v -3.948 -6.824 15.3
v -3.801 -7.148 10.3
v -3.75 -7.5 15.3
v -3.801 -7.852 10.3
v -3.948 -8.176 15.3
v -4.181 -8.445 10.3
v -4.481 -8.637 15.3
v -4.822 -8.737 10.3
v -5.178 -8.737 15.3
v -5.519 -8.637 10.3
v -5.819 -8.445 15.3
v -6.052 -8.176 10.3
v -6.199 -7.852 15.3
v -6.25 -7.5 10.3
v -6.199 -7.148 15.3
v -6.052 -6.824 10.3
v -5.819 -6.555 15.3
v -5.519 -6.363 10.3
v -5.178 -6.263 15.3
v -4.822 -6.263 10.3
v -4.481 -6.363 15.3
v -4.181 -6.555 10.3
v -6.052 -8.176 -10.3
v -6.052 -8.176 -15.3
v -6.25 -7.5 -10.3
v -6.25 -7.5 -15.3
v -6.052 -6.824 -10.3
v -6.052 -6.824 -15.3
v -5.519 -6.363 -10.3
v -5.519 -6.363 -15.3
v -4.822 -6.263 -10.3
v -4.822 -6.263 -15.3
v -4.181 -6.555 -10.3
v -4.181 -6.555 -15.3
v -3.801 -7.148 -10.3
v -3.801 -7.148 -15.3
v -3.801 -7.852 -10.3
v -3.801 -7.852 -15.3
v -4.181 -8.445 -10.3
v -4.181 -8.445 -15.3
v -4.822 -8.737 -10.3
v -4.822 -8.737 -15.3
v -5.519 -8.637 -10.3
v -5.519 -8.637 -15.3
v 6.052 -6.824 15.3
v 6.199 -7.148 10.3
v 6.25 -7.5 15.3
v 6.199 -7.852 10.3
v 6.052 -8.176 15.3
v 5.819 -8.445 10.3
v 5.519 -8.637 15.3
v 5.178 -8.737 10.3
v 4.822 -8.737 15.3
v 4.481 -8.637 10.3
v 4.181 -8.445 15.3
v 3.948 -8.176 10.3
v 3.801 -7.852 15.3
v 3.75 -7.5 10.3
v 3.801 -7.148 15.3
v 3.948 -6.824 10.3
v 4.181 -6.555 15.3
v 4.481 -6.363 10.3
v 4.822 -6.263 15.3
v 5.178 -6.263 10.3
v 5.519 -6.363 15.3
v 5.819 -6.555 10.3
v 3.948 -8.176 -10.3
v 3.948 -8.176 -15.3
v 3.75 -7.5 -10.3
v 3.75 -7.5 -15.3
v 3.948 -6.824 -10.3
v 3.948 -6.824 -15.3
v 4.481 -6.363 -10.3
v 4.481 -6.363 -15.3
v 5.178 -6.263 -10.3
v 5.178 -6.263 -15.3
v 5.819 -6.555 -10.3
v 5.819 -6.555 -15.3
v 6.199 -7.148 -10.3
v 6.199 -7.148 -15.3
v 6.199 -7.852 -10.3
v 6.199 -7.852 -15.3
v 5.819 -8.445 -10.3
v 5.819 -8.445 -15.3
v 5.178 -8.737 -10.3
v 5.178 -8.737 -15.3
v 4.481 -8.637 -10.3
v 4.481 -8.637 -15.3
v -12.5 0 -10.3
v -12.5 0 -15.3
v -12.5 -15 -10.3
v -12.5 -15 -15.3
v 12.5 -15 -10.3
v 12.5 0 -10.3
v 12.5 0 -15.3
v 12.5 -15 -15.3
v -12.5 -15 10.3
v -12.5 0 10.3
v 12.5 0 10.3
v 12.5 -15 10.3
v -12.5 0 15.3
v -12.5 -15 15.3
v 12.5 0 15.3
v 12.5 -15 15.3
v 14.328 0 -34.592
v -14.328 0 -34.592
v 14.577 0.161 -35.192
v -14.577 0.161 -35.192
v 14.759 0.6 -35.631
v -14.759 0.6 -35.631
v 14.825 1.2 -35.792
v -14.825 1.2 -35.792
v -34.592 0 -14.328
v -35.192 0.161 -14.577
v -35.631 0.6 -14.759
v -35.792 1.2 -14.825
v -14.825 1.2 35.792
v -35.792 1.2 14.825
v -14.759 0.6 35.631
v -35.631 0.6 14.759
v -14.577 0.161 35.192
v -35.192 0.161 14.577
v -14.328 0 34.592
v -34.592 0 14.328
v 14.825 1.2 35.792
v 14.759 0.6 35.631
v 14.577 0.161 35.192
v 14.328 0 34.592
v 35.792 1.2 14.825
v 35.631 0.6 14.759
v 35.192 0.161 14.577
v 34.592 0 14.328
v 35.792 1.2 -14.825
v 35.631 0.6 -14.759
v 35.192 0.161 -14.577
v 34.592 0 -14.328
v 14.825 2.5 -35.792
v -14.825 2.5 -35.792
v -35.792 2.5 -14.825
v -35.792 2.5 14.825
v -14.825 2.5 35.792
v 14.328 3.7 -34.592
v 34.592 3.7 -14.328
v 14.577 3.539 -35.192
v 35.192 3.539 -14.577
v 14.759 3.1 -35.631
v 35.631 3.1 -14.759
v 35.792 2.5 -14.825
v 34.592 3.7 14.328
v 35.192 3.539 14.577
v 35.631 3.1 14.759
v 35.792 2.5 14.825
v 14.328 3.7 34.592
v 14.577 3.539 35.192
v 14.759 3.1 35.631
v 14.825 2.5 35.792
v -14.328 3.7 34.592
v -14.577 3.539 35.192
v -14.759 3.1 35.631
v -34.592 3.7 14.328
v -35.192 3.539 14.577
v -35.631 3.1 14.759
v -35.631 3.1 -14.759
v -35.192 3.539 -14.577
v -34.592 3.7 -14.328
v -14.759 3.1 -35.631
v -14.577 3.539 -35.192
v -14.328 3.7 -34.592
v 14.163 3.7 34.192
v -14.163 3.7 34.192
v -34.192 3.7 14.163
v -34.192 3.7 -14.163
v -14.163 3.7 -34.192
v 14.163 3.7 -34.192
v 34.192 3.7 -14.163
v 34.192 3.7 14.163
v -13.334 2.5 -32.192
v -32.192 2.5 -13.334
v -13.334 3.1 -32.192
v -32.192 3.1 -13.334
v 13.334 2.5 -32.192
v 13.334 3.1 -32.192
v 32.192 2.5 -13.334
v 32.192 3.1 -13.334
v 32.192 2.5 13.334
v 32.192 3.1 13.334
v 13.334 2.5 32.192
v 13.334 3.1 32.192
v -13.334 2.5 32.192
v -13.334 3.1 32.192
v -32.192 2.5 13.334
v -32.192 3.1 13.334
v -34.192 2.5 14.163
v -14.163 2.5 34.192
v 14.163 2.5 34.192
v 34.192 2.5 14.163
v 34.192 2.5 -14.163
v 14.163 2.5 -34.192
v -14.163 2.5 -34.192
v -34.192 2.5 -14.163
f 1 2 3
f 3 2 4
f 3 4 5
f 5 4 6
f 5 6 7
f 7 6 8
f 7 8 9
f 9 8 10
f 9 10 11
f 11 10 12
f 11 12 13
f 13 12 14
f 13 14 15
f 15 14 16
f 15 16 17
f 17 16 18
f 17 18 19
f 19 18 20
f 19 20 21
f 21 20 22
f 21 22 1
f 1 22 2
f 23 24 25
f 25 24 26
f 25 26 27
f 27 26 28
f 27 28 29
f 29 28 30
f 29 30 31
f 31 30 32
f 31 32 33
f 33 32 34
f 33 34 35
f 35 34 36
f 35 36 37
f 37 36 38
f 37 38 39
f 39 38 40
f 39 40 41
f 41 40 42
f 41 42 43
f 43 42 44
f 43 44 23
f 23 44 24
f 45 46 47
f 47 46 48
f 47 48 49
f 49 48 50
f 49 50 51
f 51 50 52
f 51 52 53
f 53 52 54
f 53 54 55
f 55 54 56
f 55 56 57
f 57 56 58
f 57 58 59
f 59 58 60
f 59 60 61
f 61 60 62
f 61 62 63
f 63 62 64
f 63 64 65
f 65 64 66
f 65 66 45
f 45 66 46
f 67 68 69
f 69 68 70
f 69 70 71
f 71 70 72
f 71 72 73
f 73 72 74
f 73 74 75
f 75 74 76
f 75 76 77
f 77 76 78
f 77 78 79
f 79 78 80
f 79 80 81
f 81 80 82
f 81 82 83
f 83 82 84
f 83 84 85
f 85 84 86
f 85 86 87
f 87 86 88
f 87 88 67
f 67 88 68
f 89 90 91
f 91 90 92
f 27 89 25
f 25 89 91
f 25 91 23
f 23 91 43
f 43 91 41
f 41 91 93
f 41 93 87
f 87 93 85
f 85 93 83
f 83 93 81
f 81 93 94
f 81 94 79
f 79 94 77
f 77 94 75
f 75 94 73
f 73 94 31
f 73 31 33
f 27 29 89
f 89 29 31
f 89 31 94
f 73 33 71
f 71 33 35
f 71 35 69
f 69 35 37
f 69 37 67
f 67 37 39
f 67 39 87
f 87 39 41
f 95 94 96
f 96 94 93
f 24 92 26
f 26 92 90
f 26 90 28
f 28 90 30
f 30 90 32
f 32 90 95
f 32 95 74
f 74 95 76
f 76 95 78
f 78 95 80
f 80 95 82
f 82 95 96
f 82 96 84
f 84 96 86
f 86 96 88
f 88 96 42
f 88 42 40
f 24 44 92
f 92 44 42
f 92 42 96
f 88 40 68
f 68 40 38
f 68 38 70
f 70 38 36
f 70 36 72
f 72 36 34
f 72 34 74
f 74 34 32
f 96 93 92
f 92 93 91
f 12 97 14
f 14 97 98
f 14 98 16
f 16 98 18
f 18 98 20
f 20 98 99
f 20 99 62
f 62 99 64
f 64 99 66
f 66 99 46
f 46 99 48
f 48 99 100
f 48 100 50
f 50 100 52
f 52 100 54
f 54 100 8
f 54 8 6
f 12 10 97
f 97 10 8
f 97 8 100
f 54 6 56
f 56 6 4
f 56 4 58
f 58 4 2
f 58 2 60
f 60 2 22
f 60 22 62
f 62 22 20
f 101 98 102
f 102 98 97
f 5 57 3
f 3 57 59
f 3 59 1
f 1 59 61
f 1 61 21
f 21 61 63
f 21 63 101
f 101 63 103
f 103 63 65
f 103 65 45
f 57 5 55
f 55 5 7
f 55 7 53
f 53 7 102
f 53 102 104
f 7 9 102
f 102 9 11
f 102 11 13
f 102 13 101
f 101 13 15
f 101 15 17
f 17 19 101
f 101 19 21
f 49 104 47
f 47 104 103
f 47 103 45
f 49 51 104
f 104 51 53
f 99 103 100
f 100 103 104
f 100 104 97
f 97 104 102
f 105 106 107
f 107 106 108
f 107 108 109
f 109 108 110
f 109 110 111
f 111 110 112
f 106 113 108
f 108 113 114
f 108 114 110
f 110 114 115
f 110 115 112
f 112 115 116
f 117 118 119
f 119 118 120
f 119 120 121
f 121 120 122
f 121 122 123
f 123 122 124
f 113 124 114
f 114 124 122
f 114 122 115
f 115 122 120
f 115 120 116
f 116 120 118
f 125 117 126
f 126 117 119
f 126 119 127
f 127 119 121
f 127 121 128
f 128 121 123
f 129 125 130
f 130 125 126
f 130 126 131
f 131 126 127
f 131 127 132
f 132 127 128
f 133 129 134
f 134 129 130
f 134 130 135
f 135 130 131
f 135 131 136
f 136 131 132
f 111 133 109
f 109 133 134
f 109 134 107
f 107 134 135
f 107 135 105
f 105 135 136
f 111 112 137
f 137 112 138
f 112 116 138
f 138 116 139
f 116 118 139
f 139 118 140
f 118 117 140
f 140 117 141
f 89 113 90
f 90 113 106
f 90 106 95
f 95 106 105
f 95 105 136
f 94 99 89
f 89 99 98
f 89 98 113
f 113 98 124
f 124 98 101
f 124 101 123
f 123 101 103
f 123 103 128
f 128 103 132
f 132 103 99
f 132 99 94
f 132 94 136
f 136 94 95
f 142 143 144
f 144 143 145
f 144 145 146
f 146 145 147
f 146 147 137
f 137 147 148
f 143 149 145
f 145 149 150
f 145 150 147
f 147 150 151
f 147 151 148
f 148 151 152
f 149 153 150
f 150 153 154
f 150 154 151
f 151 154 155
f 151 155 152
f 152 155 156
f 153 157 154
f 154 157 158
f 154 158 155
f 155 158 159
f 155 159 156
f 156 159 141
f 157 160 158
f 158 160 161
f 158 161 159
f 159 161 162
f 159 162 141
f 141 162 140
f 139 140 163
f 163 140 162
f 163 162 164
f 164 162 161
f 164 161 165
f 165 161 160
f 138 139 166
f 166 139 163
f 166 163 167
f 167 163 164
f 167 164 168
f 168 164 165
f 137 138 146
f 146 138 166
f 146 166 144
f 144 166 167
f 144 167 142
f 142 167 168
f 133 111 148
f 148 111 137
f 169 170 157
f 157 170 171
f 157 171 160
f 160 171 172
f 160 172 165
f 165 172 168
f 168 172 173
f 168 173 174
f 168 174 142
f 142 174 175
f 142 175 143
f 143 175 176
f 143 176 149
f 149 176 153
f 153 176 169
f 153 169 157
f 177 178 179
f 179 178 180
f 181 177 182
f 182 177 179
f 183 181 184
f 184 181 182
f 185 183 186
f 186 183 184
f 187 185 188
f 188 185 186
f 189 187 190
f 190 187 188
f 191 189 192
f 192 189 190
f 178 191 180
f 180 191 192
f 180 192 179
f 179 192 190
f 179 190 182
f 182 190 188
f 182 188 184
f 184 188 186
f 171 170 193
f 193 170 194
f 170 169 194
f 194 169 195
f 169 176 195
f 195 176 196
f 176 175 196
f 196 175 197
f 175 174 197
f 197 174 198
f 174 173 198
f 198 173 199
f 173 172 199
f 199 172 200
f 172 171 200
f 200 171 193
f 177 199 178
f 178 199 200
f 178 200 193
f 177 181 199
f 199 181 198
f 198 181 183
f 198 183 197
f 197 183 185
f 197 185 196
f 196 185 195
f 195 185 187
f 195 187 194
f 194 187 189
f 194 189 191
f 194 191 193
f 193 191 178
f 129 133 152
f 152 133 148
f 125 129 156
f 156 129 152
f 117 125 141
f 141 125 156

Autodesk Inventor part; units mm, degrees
ref_plane "YZ Plane" through (0, 0, 0) normal (1, 0, 0) x (0, 1, 0)
ref_plane "XZ Plane" through (0, 0, 0) normal (0, 1, 0) x (-1, 0, 0)
ref_plane "XY Plane" through (0, 0, 0) normal (0, 0, 1) x (1, 0, 0)
sketch "스케치3" plane through (0, 0, 0) normal (0, 1, 0) x (-1, 0, 0)
  line L0 (35.7919, -14.8255) -> (14.8255, -35.7919)
  line L1 (14.8255, -35.7919) -> (-14.8255, -35.7919)
  line L2 (-14.8255, -35.7919) -> (-35.7919, -14.8255)
  line L3 (-35.7919, -14.8255) -> (-35.7919, 14.8255)
  line L4 (-35.7919, 14.8255) -> (-14.8255, 35.7919)
  line L5 (-14.8255, 35.7919) -> (14.8255, 35.7919)
  line L6 (14.8255, 35.7919) -> (35.7919, 14.8255)
  line L7 (35.7919, 14.8255) -> (35.7919, -14.8255)
  line L8 (13.5, -32.5919) -> (-13.5, -32.5919)
  line L9 (-13.5, -32.5919) -> (-32.5919, -13.5)
  line L10 (-32.5919, -13.5) -> (-32.5919, 13.5)
  line L11 (-32.5919, 13.5) -> (-13.5, 32.5919)
  line L12 (-13.5, 32.5919) -> (13.5, 32.5919)
  line L13 (13.5, 32.5919) -> (32.5919, 13.5)
  line L14 (32.5919, 13.5) -> (32.5919, -13.5)
  line L15 (32.5919, -13.5) -> (13.5, -32.5919)
  point P0 (0, 0)
  point P1 (0, 0)
  point P2 (0, 0)
  point P3 (0, 0)
  dimension "d66" = 27
  dimension "d67" = 3.2
extrude "돌출2" add sketch "스케치3" along normal blind 3.7 contours L0 L1 L2 L3 L4 L5 L6 L7 | L8 L9 L10 L11 L12 L13 L14 L15
sketch "스케치4" plane through (0, 3.7, 0) normal (0, 1, 0) x (1, 0, 0)
  line L0 (13.5, -32.5919) -> (-13.5, -32.5919)
  line L1 (-13.5, -32.5919) -> (-32.5919, -13.5)
  line L2 (-32.5919, -13.5) -> (-32.5919, 13.5)
  line L3 (-32.5919, 13.5) -> (-13.5, 32.5919)
  line L4 (-13.5, 32.5919) -> (13.5, 32.5919)
  line L5 (13.5, 32.5919) -> (32.5919, 13.5)
  line L6 (32.5919, 13.5) -> (32.5919, -13.5)
  line L7 (32.5919, -13.5) -> (13.5, -32.5919)
  line L8 (-14.1627, 34.1919) -> (14.1627, 34.1919)
  line L9 (14.1627, 34.1919) -> (34.1919, 14.1627)
  line L10 (34.1919, 14.1627) -> (34.1919, -14.1627)
  line L11 (34.1919, -14.1627) -> (14.1627, -34.1919)
  line L12 (14.1627, -34.1919) -> (-14.1627, -34.1919)
  line L13 (-14.1627, -34.1919) -> (-34.1919, -14.1627)
  line L14 (-34.1919, -14.1627) -> (-34.1919, 14.1627)
  line L15 (-34.1919, 14.1627) -> (-14.1627, 34.1919)
  line L16 (-13.3343, 32.1919) -> (13.3343, 32.1919)
  line L17 (13.3343, 32.1919) -> (32.1919, 13.3343)
  line L18 (32.1919, 13.3343) -> (32.1919, -13.3343)
  line L19 (32.1919, -13.3343) -> (13.3343, -32.1919)
  line L20 (13.3343, -32.1919) -> (-13.3343, -32.1919)
  line L21 (-13.3343, -32.1919) -> (-32.1919, -13.3343)
  line L22 (-32.1919, -13.3343) -> (-32.1919, 13.3343)
  line L23 (-32.1919, 13.3343) -> (-13.3343, 32.1919)
  line L24 (-14.8255, 35.7919) -> (-35.7919, 14.8255) projected
  point P0 (0, 0)
  point P1 (0, 0)
  point P2 (0, 0)
  point P3 (0, 0)
  dimension "d7" = 27
  dimension "d99" = 1.6
  dimension "d100" = 2
extrude "돌출3" cut sketch "스케치4" against normal blind 1.2 contours L0 L1 L2 L3 L4 L5 L6 L7 | L8 L9 L10 L11 L12 L13 L14 L15 | L16 L17 L18 L19 L20 L21 L22 L23
sketch "스케치11" plane through (0, 2.5, 0) normal (0, 1, 0) x (1, 0, 0)
  line L0 (-13.3343, 32.1919) -> (13.3343, 32.1919)
  line L1 (13.3343, 32.1919) -> (32.1919, 13.3343)
  line L2 (32.1919, 13.3343) -> (32.1919, -13.3343)
  line L3 (32.1919, -13.3343) -> (13.3343, -32.1919)
  line L4 (13.3343, -32.1919) -> (-13.3343, -32.1919)
  line L5 (-13.3343, -32.1919) -> (-32.1919, -13.3343)
  line L6 (-32.1919, -13.3343) -> (-32.1919, 13.3343)
  line L7 (-32.1919, 13.3343) -> (-13.3343, 32.1919)
  line L8 (-14.1627, 34.1919) -> (14.1627, 34.1919) projected
  line L9 (-12.0917, 29.1919) -> (12.0917, 29.1919)
  line L10 (12.0917, 29.1919) -> (29.1919, 12.0917)
  line L11 (29.1919, 12.0917) -> (29.1919, -12.0917)
  line L12 (29.1919, -12.0917) -> (12.0917, -29.1919)
  line L13 (12.0917, -29.1919) -> (-12.0917, -29.1919)
  line L14 (-12.0917, -29.1919) -> (-29.1919, -12.0917)
  line L15 (-29.1919, -12.0917) -> (-29.1919, 12.0917)
  line L16 (-29.1919, 12.0917) -> (-12.0917, 29.1919)
  point P0 (0, 0)
  point P1 (0, 0)
  point P2 (0, 0)
  dimension "d70" = 2
  dimension "d71" = 3
extrude "돌출10" add sketch "스케치11" along normal blind 0.6 contours L0 L1 L2 L3 L4 L5 L6 L7 | L9 L10 L11 L12 L13 L14 L15 L16
fillet "모깎기1" radius 1.2 16 edges at (-25.3087, 3.7, 25.3087) (0, 3.7, 35.7919) (25.3087, 3.7, 25.3087) (35.7919, 3.7, 0) (25.3087, 3.7, -25.3087) (0, 3.7, -35.7919) (-25.3087, 3.7, -25.3087) (-35.7919, 3.7, 0) (-25.3087, 0, 25.3087) (0, 0, 35.7919) (25.3087, 0, 25.3087) (35.7919, 0, 0) (25.3087, 0, -25.3087) (0, 0, -35.7919) (-25.3087, 0, -25.3087) (-35.7919, 0, 0)
sketch "스케치16" plane through (0, 0, 0) normal (0, -1, 0) x (1, 0, 0)
  line L0 (-12.5, 10.3) -> (12.5, 10.3)
  line L1 (12.5, 10.3) -> (12.5, 15.3)
  line L2 (12.5, 15.3) -> (-12.5, 15.3)
  line L3 (-12.5, 15.3) -> (-12.5, 10.3)
  line L4 (-12.5, 10.3) -> (12.5, 15.3) construction
  line L5 (12.5, 10.3) -> (-12.5, 15.3) construction
  line L6 (0, 0) -> (12.5, 0)
  line L7 (-12.5, -10.3) -> (12.5, -10.3)
  line L8 (12.5, -10.3) -> (12.5, -15.3)
  line L9 (12.5, -15.3) -> (-12.5, -15.3)
  line L10 (-12.5, -15.3) -> (-12.5, -10.3)
  line L11 (-12.5, -10.3) -> (12.5, -15.3) construction
  line L12 (12.5, -10.3) -> (-12.5, -15.3) construction
  point P0 (0, 12.8)
  point P1 (0, 10.3)
  point P2 (0, -12.8)
  point P3 (0, -10.3)
  dimension "d127" = 5
  dimension "d128" = 25
  dimension "d129" = 10.3
extrude "돌출12" add sketch "스케치16" along normal blind 15
sketch "스케치17" plane through (-12.5, 0, 15.3) normal (0, 0, 1) x (1, 0, 0)
  circle A0 centre (7.5, -7.5) radius 1.25
  line L0 (-1.8284, 0) -> (26.8284, 0) projected
  line L1 (12.5, 0) -> (12.5, -5.2723)
  circle A1 centre (17.5, -7.5) radius 1.25
  point P0 (12.5, 0)
  dimension "d132" = 2.5
  dimension "d136" = 7.5
  dimension "d137" = 5
extrude "돌출13" cut sketch "스케치17" against normal up to surface (30.6 mm away)
equation "\"d115\" = 55deg"
properties part number "OV-PAM_bottom_2"
